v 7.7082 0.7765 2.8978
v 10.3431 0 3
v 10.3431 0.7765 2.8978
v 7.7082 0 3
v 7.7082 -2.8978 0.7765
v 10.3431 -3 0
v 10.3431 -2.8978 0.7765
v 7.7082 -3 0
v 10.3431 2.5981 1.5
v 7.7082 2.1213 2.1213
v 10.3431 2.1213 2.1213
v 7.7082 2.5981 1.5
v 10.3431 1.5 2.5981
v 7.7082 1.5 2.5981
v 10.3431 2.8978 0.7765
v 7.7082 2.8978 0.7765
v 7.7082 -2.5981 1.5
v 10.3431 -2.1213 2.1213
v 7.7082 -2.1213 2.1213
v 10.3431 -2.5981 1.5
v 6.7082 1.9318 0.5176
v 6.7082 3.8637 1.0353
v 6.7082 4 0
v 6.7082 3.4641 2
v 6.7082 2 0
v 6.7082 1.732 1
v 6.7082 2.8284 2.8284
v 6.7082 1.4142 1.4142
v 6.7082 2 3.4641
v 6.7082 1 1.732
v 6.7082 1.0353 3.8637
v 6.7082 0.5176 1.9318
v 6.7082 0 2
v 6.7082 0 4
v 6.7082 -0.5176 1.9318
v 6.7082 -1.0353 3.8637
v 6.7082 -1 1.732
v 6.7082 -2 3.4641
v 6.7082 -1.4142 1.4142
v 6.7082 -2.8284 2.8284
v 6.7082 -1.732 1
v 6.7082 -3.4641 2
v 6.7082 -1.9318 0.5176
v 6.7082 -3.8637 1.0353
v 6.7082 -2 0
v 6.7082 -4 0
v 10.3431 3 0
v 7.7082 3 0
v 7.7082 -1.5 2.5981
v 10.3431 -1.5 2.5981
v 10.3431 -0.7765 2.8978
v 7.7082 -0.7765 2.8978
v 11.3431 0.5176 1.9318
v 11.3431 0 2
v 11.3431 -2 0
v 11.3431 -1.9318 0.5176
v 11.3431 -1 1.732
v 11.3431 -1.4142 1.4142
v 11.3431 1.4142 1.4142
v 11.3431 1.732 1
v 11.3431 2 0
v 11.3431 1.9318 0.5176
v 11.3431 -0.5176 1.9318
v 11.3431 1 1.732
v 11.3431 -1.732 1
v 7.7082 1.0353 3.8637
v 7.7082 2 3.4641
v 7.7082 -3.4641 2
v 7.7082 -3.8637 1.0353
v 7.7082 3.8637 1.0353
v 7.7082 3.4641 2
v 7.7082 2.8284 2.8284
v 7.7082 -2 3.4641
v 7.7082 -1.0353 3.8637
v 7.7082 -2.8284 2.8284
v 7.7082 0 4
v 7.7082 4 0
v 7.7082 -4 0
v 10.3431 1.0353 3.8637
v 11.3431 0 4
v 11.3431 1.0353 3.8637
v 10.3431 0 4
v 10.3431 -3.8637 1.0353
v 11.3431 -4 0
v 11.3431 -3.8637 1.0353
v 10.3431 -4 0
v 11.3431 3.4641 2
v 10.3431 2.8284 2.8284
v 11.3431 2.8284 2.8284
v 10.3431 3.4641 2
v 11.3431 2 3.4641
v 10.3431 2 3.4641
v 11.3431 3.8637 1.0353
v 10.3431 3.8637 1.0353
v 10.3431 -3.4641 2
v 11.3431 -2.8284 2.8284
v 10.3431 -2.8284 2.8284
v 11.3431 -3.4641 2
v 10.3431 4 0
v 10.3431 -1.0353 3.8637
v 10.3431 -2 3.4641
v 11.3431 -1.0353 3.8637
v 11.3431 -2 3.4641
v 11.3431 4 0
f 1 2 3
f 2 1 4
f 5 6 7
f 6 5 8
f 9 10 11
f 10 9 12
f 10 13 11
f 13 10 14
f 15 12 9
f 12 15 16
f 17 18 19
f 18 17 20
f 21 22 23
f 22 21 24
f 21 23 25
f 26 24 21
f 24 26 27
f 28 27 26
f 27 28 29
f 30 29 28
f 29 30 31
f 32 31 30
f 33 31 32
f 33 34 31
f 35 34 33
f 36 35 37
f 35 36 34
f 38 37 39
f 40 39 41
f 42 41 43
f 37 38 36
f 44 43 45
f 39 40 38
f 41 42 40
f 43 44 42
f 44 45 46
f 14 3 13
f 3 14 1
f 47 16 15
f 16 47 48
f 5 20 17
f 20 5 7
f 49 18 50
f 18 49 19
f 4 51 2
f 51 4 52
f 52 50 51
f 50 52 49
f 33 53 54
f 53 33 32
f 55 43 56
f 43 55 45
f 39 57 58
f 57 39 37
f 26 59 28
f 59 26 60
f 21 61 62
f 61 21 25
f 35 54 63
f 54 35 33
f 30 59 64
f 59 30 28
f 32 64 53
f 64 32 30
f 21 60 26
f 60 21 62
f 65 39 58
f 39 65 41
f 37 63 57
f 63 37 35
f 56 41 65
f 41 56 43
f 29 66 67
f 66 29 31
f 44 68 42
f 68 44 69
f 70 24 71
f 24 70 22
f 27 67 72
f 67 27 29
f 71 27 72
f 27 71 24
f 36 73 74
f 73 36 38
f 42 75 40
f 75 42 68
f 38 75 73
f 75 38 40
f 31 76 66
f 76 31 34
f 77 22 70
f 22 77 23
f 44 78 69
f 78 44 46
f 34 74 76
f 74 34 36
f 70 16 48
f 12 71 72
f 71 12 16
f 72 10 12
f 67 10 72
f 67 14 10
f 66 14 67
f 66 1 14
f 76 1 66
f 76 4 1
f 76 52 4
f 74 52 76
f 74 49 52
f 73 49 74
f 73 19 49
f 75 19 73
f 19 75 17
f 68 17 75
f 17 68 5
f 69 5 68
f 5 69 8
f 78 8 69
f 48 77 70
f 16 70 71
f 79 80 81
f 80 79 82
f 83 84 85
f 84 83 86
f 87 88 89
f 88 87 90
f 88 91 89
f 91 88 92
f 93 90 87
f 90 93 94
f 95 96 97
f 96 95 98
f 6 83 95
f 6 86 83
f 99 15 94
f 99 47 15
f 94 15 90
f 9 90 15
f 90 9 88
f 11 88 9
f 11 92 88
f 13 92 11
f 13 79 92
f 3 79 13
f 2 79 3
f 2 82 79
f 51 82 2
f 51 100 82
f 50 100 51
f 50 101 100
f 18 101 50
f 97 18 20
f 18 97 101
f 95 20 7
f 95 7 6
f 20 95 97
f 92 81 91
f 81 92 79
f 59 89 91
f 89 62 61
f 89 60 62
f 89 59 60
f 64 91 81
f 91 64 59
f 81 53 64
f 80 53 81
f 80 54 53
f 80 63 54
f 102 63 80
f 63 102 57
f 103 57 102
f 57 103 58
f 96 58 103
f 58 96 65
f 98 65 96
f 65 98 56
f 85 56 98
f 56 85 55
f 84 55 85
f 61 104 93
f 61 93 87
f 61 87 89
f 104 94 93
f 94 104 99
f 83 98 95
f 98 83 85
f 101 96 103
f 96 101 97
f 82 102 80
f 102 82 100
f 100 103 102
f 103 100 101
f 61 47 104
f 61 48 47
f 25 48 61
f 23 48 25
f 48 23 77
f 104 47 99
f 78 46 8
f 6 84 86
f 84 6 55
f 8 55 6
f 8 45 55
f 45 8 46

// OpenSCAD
// file: ../build_environments.scad
// build_environments.scad: modules to build level sections
//

module pool(diameter=10.0, wall_height=2.0, step_width=3.0, connections=[])
{
    difference() {
        union() {
        difference() {
            cylinder(h=0.5,r1=diameter+step_width,r2=diameter+step_width,$fn=48);
            translate([0,0,-0.1])
                cylinder(h=0.7,r1=diameter,r2=diameter,$fn=48);
        }
        difference() {
            cylinder(h=wall_height,r1=diameter+step_width+1.0,r2=diameter+step_width+1.0,$fn=48);
            translate([0,0,-0.1])
                cylinder(h=wall_height+0.2,r1=diameter+step_width,r2=diameter+step_width,$fn=48);
        }
        }
    
        for (c = connections)
        {
            rotate([0,90,0]) {
                angle = atan2(c[1],c[0]);
                rotate([-angle,0,0]) {
                    cylinder(h=diameter+5.0,r1=c[2],r2=c[2],$fn=48);
                }
            }
        }
    }
}

module straight(length=10.0, width=2.0, dy1=0.0, dy2=0.0, dz=0.0)
{
    dims = [0, 0, 0, 0, 0, (dz/length)];
    matrix = [
        [ 1, dims[0], dims[1], 0 ],
        [ dims[2], 1, dims[4], 0 ],
        [ dims[5], dims[3], 1, 0 ],
        [ 0, 0, 0, 1 ]
    ];
    multmatrix(matrix)
    difference() {
        translate([dy1,0,0])
        union() {
            rotate([0,90,0]) {
                difference() {
                    cylinder(h=(length-dy1-dy2),r1=width+1.0,r2=width+1.0,$fn=24);
                    translate([0,0,-0.1])
                        cylinder(h=(length-dy1-dy2+0.2),r1=width,r2=width,$fn=24);
                }
                difference() {
                    cylinder(h=1.0,r1=width+2.0,r2=width+2.0,$fn=24);
                    translate([0,0,-0.1])
                        cylinder(h=1.2,r1=width,r2=width,$fn=24);
                }
                translate([0,0,(length-dy1-dy2)-1.0]) {
                    difference() {
                        cylinder(h=1.0,r1=width+2.0,r2=width+2.0,$fn=24);
                        translate([0,0,-0.1])
                            cylinder(h=1.2,r1=width,r2=width,$fn=24);
                    }
                }
            }
        }
        translate([0,0,-(2*width+4.0)/2])
            cube([3*length,3*length,2*width+4.0],center=true);
    }
}

module curve(p0=[0,0], center=[0,0], dir=1, angle=0.0, width=2.0)
{
    radius = sqrt((p0[0]-center[0])*(p0[0]-center[0]) + (p0[1]-center[1])*(p0[1]-center[1]));
    if (dir == 0) {
        difference() {
            rotate([0,0,-90])
            difference() {
                rotate_extrude(angle = angle, convexity = 10, $fn=32)
                    translate([radius, 0, 0])
                        circle(r = width+1.0,$fn=24);
                rotate([0,0,-1.0])
                    rotate_extrude(angle = angle+2.0, convexity = 10, $fn=32)
                        translate([radius, 0, 0])
                            circle(r = width,$fn=24);
            }
            translate([0,0,-(2*width+4.0)/2])
                cube([5*radius,5*radius,2*width+4.0],center=true);
        }
    }
    else {
        difference() {
            rotate([0,0,90])
            difference() {
                rotate_extrude(angle = -angle, convexity = 10, $fn=32)
                    translate([radius, 0, 0])
                        circle(r = width+1.0,$fn=24);
                rotate([0,0,1.0])
                    rotate_extrude(angle = -angle-2.0, convexity = 10, $fn=32)
                        translate([radius, 0, 0])
                            circle(r = width,$fn=24);
            }
            translate([0,0,-(2*width+4.0)/2])
                cube([5*radius,5*radius,2*width+4.0],center=true);
        }
    }

}

// test pool
//pool(diameter=12.0000, wall_height=3.0000, step_width=3.0000, connections=[[0.0000,-26.0000,2.0000], [23.6074,0.0000,2.0000]]);

// test straight, slope
//straight(length=26.0000, width=2.0000, dy1=11.8322, dy2=6.7082, dz=0.0000);
//straight(length=29.1549, width=12.0000, dy1=0.0000, dy2=0.0000, dz=-15.0000);

// test curve
//curve(p0=[23.6074, 0.0000], center=[23.6074, 5.0000], dir=0, angle=60.1011, width=2.0000);
//curve(p0=[33.6426, 12.4219], center=[37.9771, 9.9295], dir=1, angle=120.4627, width=2.0000);
// main file
use <../build_environments.scad>;
straight(length=17.0000, width=2.0000, dy1=6.7082, dy2=5.6569, dz=0.0000);
